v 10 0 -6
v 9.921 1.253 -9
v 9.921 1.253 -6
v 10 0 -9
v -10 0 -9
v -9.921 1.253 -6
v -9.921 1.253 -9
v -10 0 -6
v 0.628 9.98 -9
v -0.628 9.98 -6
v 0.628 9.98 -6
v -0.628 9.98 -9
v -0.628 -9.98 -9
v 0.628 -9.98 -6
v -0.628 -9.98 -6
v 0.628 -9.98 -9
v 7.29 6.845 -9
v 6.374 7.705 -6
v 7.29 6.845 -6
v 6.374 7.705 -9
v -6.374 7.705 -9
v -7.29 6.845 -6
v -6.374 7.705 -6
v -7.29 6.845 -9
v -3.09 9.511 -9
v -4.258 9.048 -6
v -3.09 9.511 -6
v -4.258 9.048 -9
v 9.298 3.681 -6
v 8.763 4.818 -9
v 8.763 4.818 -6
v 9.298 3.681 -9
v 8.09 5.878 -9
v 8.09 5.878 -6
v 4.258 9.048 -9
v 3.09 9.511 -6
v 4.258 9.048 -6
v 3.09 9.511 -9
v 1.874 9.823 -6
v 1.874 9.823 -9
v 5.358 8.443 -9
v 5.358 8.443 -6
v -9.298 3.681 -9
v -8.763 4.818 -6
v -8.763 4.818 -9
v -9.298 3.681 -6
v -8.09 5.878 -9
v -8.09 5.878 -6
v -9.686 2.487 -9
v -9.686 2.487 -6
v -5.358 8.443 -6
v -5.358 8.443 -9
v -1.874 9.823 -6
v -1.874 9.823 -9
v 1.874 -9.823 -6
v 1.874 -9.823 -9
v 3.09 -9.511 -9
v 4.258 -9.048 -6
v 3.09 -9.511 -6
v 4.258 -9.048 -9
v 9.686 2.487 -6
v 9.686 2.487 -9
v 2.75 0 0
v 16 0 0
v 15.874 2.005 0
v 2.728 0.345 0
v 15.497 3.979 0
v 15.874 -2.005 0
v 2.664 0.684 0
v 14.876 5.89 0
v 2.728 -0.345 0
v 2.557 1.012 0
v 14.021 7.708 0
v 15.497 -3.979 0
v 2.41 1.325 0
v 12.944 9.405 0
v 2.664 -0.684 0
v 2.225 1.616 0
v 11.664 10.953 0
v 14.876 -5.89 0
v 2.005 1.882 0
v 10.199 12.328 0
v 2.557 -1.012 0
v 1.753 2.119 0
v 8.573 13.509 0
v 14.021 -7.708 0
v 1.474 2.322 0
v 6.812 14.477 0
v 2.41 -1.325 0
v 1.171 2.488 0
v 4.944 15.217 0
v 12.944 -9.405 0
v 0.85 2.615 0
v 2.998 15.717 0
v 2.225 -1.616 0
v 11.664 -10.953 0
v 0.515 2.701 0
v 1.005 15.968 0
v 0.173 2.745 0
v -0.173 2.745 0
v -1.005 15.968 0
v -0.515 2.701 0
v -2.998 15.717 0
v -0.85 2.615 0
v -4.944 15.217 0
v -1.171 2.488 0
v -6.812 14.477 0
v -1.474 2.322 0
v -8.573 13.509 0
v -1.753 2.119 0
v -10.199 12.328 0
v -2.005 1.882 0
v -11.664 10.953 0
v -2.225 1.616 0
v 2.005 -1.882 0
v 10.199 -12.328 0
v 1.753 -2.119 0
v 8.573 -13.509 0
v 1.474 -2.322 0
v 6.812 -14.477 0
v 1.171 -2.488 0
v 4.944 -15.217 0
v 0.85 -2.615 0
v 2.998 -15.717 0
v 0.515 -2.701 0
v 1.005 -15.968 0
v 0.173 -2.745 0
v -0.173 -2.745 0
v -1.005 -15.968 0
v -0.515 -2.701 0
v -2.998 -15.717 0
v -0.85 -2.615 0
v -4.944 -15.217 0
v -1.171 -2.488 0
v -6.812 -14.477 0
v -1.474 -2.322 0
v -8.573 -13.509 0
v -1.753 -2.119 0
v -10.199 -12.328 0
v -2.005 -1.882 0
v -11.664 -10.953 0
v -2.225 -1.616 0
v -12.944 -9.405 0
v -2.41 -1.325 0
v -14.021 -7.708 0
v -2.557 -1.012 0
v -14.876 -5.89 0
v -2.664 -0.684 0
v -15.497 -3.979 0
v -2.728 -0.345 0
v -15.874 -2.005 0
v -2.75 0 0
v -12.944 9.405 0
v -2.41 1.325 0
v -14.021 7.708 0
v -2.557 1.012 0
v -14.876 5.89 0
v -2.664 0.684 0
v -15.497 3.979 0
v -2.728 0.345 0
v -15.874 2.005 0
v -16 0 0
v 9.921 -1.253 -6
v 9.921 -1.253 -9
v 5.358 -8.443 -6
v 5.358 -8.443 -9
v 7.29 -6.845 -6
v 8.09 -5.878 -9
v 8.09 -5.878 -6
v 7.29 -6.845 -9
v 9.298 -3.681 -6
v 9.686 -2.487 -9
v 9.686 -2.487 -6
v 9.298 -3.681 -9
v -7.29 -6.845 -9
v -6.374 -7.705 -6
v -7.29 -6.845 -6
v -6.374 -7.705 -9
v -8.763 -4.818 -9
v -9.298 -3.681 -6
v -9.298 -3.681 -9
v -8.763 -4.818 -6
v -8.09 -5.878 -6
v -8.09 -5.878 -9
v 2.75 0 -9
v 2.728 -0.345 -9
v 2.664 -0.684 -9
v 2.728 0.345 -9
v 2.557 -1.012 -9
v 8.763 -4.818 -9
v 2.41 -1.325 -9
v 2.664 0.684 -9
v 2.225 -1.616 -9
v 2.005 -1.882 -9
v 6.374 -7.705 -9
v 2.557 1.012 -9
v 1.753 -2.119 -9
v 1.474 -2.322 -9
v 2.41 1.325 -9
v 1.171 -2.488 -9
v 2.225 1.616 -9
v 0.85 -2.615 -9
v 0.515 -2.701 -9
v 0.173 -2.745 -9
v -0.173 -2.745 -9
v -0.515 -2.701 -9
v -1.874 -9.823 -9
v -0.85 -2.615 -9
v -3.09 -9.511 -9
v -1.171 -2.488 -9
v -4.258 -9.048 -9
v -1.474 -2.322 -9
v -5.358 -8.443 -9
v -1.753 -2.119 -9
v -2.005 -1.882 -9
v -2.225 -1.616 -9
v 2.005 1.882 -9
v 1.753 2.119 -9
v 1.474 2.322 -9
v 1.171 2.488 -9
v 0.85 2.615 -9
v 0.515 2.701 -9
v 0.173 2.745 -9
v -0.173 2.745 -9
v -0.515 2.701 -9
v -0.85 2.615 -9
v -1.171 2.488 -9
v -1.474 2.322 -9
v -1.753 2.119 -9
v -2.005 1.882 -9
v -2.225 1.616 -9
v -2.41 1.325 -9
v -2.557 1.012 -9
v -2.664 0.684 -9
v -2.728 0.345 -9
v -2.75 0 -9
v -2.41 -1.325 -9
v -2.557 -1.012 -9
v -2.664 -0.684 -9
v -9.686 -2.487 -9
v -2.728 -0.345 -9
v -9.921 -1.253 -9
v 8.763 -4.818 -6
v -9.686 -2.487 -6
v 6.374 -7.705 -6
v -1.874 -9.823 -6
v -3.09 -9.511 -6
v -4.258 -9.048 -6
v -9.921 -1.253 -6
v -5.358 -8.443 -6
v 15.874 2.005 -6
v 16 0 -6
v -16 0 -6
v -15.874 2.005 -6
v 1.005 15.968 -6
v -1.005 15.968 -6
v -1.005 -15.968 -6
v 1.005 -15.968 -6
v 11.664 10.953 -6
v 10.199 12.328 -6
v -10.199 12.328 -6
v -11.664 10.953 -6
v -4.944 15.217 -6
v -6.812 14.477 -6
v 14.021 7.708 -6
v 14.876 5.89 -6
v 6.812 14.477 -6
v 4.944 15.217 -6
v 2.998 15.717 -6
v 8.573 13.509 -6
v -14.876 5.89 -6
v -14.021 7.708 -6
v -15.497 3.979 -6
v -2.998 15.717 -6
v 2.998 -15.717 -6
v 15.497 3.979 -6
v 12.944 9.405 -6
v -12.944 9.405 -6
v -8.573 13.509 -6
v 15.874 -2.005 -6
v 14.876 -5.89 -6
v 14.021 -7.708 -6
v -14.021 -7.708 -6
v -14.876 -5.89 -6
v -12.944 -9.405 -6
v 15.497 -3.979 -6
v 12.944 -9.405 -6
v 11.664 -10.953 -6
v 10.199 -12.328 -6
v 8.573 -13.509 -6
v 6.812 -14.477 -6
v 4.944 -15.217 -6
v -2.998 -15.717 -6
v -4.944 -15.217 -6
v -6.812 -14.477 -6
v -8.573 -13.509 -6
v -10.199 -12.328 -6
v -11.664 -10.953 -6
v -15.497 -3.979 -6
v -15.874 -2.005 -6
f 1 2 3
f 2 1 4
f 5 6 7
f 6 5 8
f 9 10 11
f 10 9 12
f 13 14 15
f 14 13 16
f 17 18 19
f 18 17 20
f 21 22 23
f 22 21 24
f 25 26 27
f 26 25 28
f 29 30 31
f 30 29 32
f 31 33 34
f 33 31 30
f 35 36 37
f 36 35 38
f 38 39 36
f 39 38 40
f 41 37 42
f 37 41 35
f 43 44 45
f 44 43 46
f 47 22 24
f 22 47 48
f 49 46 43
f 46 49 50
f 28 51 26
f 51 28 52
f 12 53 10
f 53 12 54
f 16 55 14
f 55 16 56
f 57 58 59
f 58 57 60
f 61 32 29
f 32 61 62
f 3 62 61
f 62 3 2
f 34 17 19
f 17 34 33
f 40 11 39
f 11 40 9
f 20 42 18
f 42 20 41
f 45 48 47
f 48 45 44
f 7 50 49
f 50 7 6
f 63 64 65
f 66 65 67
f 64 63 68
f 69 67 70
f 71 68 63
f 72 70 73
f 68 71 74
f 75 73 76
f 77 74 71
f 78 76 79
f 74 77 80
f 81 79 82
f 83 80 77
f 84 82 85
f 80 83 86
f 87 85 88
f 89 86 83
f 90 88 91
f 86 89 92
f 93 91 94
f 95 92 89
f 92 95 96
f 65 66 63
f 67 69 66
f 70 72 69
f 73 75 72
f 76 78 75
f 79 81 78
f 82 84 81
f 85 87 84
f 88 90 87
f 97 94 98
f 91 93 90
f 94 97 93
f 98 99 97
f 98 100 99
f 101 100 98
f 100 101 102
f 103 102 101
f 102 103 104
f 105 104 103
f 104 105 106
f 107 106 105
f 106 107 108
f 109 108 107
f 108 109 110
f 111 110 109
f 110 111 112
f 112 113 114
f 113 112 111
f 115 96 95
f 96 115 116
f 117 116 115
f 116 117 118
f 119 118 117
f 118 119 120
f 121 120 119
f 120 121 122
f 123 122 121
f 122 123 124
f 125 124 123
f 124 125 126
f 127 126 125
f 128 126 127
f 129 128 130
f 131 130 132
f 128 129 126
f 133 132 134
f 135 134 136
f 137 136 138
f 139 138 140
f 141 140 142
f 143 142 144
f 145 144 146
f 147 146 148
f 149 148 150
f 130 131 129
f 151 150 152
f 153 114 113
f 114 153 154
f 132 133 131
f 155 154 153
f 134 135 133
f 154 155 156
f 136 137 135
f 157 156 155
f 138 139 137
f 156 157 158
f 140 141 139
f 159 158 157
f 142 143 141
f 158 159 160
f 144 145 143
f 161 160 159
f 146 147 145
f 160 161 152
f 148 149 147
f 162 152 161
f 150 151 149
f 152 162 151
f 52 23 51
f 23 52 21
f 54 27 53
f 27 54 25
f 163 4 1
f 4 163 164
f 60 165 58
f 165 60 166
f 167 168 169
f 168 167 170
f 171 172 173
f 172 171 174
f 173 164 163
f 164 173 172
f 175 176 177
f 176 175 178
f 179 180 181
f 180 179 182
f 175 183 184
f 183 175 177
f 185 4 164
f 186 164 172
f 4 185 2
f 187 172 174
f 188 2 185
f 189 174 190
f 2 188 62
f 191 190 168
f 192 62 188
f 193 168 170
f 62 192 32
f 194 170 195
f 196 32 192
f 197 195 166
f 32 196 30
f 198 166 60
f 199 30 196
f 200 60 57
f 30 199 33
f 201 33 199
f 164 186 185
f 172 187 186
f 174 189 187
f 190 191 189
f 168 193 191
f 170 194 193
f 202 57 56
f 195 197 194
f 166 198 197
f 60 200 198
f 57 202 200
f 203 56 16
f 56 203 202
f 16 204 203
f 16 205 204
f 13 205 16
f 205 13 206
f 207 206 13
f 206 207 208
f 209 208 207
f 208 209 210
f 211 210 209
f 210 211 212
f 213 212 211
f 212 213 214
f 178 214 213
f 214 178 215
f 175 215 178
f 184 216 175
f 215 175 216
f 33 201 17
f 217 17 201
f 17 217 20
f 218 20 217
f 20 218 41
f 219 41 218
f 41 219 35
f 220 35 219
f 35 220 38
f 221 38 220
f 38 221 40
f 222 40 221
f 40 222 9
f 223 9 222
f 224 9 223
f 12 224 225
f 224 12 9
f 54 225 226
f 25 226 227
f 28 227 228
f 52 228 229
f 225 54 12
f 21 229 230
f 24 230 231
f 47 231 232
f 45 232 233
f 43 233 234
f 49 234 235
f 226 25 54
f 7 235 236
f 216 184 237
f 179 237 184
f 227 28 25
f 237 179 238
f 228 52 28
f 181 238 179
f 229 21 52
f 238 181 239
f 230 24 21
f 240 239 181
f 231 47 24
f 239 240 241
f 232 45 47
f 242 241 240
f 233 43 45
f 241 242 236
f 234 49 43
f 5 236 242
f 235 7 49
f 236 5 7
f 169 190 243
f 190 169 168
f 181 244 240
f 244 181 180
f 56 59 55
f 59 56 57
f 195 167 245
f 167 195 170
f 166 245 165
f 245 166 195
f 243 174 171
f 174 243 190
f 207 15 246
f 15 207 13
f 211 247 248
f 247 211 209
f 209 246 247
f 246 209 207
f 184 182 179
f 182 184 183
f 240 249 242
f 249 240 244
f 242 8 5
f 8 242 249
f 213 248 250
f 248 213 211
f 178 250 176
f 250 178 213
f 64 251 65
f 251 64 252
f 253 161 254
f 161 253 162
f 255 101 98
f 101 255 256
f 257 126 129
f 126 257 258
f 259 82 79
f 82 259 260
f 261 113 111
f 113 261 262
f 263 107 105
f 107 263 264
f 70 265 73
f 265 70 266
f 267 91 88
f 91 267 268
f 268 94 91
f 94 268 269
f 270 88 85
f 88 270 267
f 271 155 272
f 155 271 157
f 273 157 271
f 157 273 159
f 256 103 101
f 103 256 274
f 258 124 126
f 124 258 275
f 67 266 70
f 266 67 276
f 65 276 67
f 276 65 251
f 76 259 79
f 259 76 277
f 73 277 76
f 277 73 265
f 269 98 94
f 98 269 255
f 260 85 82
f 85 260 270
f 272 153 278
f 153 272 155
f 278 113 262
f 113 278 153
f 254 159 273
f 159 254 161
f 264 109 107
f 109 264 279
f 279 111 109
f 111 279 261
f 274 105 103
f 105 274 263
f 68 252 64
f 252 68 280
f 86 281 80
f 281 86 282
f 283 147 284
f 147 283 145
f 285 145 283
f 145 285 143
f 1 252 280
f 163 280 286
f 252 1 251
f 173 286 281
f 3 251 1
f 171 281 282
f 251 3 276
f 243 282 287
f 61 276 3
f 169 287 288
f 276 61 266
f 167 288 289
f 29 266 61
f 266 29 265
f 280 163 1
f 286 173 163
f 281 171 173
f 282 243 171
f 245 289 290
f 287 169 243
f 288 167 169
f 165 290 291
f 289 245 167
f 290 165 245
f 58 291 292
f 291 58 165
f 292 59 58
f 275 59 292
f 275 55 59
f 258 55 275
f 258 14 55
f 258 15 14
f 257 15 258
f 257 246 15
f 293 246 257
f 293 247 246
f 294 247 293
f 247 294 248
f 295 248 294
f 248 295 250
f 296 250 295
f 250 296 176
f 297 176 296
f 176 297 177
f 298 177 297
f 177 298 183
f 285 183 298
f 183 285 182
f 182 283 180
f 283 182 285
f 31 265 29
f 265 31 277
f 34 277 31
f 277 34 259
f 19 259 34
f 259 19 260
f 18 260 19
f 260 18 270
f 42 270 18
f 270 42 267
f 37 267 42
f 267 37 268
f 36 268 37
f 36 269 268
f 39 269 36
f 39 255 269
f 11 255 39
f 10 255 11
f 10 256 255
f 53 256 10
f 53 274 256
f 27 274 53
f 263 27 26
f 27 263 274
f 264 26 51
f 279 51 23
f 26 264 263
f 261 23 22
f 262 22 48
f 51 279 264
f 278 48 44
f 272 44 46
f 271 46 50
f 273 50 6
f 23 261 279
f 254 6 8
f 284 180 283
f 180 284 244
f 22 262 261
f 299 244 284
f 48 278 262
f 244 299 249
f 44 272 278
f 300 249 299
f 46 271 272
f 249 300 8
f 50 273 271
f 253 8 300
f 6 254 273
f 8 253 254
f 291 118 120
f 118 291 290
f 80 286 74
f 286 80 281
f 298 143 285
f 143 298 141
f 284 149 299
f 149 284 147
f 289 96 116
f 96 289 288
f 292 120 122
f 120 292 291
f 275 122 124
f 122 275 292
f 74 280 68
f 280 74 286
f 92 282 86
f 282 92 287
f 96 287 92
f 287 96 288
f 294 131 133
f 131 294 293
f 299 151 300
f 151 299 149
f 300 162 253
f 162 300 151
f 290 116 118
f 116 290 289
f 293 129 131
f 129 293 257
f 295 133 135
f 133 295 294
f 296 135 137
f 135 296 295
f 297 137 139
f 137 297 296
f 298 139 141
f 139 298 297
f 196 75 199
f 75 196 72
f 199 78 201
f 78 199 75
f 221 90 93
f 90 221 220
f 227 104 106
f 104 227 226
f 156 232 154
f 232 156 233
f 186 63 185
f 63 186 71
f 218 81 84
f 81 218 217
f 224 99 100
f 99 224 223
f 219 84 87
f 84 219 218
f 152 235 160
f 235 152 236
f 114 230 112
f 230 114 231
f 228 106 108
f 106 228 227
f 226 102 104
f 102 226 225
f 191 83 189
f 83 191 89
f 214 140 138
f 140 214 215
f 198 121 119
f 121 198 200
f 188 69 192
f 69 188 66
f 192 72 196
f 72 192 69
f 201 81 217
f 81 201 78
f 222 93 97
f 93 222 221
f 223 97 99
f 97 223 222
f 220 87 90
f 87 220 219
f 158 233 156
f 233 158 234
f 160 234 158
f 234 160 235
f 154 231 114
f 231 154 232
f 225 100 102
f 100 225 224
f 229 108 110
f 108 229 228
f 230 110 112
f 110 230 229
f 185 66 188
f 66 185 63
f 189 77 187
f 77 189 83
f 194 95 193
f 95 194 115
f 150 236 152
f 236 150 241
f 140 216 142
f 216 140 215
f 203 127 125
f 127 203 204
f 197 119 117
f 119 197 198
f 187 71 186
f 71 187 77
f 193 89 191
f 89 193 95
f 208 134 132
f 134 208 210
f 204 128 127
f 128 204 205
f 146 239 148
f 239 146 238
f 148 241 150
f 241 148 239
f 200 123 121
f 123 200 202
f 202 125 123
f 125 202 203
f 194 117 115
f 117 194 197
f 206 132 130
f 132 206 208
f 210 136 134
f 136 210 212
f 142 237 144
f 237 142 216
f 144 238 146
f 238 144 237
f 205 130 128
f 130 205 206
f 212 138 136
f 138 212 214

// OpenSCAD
$fn = 50;


difference() {
	union() {
		translate(v = [0, 0, -9.0000000000]) {
			cylinder(h = 9, r = 10.0000000000);
		}
		translate(v = [0, 0, -6.0000000000]) {
			cylinder(h = 6, r = 16.0000000000);
		}
	}
	union() {
		#translate(v = [0, 0, -9]) {
			cylinder(h = 9, r = 2.7500000000);
		}
	}
}
